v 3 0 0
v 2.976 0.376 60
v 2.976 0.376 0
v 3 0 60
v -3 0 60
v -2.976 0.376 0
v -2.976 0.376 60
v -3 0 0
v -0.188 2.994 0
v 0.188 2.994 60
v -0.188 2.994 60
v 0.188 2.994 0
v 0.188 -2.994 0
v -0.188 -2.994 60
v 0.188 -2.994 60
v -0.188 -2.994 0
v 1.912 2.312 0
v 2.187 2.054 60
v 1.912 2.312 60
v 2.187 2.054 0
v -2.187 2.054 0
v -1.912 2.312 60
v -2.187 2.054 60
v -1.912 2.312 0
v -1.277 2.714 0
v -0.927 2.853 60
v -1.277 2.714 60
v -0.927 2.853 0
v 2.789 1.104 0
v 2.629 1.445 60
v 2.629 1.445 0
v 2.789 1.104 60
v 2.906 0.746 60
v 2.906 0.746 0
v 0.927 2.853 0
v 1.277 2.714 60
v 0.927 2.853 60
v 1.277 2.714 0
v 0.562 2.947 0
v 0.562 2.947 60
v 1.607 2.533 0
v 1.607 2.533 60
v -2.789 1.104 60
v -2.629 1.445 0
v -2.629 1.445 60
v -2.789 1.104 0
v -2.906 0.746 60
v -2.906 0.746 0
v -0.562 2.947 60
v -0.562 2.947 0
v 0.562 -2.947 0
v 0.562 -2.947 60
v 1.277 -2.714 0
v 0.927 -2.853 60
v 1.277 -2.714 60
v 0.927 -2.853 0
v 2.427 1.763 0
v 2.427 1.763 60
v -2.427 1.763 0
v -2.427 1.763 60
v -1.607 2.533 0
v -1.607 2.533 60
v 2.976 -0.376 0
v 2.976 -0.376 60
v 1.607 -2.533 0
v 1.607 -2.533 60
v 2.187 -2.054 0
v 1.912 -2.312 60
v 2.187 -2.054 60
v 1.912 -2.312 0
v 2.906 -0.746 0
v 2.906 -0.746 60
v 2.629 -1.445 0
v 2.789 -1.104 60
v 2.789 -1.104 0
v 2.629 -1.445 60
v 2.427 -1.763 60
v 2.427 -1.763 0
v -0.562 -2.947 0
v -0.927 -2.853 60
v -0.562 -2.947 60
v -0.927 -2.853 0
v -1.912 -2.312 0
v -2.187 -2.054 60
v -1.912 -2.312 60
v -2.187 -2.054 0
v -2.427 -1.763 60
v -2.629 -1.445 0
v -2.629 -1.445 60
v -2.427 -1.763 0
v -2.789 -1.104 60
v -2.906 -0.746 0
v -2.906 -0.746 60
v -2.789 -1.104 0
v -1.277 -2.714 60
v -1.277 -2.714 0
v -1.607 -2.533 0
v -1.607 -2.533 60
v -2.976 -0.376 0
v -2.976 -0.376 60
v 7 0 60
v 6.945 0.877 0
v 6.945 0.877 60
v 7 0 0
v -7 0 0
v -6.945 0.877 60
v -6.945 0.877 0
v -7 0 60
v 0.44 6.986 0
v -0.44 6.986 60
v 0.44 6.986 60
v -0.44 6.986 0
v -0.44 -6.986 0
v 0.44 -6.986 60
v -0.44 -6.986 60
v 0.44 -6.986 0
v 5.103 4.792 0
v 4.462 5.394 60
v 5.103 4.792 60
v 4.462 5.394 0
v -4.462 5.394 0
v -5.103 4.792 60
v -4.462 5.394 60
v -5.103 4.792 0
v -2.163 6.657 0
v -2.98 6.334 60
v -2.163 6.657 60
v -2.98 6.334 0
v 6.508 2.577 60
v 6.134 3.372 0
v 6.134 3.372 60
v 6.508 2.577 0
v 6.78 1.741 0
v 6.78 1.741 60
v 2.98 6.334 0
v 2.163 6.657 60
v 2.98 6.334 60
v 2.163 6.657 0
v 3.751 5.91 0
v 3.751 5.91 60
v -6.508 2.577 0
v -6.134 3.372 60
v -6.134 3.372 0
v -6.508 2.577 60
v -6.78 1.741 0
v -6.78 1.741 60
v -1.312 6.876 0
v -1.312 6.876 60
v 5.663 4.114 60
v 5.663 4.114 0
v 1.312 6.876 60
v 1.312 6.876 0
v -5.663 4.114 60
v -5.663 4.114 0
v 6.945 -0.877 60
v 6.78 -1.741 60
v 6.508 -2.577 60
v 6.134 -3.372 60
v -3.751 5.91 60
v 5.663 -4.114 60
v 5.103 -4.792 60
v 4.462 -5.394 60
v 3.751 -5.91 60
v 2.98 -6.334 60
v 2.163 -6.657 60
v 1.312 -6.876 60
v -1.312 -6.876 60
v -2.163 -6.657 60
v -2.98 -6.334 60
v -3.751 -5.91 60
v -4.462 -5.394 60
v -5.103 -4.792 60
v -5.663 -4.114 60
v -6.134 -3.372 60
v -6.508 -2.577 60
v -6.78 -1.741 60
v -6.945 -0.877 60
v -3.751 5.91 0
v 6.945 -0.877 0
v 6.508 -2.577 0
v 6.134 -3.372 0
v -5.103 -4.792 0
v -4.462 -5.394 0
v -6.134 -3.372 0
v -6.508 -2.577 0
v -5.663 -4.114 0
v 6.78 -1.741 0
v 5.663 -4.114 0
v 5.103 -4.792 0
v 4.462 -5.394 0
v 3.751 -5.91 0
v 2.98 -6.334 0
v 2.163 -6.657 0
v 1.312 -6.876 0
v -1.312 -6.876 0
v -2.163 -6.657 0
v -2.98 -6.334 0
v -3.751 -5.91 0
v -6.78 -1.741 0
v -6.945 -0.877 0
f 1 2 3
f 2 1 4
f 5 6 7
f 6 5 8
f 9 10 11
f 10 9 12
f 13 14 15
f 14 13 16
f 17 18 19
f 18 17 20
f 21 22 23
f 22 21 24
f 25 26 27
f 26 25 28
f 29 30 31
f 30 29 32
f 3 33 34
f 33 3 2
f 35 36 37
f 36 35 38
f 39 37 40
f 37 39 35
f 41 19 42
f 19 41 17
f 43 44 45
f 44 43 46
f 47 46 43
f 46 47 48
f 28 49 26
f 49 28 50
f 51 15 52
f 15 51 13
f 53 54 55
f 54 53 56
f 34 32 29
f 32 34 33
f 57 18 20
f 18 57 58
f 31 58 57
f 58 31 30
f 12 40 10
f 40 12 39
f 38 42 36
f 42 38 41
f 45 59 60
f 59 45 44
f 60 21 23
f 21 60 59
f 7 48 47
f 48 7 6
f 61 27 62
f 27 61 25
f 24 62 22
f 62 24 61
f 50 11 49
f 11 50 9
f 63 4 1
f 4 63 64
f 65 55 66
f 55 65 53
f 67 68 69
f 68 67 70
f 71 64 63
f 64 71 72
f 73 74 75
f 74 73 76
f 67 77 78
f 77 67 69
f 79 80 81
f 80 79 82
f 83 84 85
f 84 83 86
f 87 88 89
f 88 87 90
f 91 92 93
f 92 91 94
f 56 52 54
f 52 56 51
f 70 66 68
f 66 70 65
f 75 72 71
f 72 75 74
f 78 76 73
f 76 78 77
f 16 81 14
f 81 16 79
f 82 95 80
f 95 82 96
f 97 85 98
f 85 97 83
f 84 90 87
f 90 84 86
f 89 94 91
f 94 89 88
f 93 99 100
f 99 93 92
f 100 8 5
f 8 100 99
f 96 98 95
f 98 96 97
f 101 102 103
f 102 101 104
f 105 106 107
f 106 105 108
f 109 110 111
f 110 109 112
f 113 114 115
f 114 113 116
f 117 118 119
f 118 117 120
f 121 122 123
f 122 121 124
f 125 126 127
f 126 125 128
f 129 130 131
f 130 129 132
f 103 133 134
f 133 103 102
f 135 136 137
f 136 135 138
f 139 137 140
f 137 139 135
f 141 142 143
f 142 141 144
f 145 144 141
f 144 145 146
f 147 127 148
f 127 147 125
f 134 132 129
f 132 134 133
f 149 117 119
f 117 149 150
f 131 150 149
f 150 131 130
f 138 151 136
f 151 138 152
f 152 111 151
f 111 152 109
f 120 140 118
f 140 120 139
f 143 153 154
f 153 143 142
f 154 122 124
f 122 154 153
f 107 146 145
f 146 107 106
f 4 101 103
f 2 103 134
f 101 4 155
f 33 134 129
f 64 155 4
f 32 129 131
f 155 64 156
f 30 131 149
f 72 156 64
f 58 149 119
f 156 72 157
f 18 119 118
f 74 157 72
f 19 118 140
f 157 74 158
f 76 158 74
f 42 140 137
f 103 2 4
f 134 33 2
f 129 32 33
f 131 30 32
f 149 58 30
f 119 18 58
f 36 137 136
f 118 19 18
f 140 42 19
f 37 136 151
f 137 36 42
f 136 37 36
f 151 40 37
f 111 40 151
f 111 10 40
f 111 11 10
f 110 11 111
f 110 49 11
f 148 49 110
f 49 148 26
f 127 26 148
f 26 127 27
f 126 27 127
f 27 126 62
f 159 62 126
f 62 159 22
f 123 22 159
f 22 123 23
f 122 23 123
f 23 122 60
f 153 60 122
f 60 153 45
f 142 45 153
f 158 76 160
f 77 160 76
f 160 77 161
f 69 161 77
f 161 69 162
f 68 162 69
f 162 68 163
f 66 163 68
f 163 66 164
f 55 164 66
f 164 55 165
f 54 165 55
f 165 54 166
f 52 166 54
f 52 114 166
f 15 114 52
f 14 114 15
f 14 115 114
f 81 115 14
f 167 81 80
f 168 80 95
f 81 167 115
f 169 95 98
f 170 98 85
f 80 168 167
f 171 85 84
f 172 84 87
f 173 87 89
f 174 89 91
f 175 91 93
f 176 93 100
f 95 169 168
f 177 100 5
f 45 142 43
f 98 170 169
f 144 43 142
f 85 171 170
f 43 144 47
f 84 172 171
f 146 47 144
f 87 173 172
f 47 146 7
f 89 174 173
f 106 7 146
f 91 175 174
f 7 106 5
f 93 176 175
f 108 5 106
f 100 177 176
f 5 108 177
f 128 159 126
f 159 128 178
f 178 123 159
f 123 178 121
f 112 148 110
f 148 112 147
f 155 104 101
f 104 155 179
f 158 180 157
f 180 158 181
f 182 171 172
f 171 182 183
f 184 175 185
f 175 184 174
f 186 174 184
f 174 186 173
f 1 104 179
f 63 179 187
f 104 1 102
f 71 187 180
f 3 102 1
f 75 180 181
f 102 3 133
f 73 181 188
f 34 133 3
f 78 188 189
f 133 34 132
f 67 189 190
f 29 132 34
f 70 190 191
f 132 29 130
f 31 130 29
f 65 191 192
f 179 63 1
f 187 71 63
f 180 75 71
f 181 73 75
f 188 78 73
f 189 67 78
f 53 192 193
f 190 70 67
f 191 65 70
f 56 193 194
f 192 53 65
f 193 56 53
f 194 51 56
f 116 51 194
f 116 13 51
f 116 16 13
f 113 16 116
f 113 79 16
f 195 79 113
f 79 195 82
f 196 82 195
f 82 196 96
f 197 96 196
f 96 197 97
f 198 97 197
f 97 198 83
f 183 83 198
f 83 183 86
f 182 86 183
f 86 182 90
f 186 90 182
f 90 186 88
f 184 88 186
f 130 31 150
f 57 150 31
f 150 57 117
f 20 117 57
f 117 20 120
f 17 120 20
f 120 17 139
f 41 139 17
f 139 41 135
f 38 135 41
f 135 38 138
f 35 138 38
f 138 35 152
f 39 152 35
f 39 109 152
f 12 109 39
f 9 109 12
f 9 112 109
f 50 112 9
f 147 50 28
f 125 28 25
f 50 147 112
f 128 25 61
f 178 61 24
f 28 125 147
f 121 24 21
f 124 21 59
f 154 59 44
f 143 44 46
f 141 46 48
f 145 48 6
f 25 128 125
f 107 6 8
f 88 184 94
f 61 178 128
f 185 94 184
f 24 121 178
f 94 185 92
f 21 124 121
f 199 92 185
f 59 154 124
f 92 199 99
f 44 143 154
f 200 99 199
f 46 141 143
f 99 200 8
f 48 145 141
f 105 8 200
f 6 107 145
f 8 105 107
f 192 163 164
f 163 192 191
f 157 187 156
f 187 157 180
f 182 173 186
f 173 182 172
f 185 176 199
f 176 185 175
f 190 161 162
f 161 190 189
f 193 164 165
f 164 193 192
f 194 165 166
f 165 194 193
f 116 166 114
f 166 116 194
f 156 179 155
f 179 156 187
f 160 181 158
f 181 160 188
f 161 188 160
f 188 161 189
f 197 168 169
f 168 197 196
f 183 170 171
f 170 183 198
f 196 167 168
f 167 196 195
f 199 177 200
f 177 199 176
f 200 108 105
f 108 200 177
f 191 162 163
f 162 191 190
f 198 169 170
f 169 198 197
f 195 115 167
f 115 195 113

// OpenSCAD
$fn = 50;


difference() {
	union() {
		cylinder(h = 60, r = 7.0000000000);
	}
	union() {
		translate(v = [0.0000000000, 0.0000000000, -100.0000000000]) {
			cylinder(h = 200, r = 3.0000000000);
		}
		translate(v = [0.0000000000, 0.0000000000, -100.0000000000]) {
			cylinder(h = 200, r = 3.0000000000);
		}
		translate(v = [0.0000000000, 0.0000000000, -100.0000000000]) {
			cylinder(h = 200, r = 3.0000000000);
		}
		translate(v = [0.0000000000, 0.0000000000, -100.0000000000]) {
			cylinder(h = 200, r = 3.0000000000);
		}
	}
}
